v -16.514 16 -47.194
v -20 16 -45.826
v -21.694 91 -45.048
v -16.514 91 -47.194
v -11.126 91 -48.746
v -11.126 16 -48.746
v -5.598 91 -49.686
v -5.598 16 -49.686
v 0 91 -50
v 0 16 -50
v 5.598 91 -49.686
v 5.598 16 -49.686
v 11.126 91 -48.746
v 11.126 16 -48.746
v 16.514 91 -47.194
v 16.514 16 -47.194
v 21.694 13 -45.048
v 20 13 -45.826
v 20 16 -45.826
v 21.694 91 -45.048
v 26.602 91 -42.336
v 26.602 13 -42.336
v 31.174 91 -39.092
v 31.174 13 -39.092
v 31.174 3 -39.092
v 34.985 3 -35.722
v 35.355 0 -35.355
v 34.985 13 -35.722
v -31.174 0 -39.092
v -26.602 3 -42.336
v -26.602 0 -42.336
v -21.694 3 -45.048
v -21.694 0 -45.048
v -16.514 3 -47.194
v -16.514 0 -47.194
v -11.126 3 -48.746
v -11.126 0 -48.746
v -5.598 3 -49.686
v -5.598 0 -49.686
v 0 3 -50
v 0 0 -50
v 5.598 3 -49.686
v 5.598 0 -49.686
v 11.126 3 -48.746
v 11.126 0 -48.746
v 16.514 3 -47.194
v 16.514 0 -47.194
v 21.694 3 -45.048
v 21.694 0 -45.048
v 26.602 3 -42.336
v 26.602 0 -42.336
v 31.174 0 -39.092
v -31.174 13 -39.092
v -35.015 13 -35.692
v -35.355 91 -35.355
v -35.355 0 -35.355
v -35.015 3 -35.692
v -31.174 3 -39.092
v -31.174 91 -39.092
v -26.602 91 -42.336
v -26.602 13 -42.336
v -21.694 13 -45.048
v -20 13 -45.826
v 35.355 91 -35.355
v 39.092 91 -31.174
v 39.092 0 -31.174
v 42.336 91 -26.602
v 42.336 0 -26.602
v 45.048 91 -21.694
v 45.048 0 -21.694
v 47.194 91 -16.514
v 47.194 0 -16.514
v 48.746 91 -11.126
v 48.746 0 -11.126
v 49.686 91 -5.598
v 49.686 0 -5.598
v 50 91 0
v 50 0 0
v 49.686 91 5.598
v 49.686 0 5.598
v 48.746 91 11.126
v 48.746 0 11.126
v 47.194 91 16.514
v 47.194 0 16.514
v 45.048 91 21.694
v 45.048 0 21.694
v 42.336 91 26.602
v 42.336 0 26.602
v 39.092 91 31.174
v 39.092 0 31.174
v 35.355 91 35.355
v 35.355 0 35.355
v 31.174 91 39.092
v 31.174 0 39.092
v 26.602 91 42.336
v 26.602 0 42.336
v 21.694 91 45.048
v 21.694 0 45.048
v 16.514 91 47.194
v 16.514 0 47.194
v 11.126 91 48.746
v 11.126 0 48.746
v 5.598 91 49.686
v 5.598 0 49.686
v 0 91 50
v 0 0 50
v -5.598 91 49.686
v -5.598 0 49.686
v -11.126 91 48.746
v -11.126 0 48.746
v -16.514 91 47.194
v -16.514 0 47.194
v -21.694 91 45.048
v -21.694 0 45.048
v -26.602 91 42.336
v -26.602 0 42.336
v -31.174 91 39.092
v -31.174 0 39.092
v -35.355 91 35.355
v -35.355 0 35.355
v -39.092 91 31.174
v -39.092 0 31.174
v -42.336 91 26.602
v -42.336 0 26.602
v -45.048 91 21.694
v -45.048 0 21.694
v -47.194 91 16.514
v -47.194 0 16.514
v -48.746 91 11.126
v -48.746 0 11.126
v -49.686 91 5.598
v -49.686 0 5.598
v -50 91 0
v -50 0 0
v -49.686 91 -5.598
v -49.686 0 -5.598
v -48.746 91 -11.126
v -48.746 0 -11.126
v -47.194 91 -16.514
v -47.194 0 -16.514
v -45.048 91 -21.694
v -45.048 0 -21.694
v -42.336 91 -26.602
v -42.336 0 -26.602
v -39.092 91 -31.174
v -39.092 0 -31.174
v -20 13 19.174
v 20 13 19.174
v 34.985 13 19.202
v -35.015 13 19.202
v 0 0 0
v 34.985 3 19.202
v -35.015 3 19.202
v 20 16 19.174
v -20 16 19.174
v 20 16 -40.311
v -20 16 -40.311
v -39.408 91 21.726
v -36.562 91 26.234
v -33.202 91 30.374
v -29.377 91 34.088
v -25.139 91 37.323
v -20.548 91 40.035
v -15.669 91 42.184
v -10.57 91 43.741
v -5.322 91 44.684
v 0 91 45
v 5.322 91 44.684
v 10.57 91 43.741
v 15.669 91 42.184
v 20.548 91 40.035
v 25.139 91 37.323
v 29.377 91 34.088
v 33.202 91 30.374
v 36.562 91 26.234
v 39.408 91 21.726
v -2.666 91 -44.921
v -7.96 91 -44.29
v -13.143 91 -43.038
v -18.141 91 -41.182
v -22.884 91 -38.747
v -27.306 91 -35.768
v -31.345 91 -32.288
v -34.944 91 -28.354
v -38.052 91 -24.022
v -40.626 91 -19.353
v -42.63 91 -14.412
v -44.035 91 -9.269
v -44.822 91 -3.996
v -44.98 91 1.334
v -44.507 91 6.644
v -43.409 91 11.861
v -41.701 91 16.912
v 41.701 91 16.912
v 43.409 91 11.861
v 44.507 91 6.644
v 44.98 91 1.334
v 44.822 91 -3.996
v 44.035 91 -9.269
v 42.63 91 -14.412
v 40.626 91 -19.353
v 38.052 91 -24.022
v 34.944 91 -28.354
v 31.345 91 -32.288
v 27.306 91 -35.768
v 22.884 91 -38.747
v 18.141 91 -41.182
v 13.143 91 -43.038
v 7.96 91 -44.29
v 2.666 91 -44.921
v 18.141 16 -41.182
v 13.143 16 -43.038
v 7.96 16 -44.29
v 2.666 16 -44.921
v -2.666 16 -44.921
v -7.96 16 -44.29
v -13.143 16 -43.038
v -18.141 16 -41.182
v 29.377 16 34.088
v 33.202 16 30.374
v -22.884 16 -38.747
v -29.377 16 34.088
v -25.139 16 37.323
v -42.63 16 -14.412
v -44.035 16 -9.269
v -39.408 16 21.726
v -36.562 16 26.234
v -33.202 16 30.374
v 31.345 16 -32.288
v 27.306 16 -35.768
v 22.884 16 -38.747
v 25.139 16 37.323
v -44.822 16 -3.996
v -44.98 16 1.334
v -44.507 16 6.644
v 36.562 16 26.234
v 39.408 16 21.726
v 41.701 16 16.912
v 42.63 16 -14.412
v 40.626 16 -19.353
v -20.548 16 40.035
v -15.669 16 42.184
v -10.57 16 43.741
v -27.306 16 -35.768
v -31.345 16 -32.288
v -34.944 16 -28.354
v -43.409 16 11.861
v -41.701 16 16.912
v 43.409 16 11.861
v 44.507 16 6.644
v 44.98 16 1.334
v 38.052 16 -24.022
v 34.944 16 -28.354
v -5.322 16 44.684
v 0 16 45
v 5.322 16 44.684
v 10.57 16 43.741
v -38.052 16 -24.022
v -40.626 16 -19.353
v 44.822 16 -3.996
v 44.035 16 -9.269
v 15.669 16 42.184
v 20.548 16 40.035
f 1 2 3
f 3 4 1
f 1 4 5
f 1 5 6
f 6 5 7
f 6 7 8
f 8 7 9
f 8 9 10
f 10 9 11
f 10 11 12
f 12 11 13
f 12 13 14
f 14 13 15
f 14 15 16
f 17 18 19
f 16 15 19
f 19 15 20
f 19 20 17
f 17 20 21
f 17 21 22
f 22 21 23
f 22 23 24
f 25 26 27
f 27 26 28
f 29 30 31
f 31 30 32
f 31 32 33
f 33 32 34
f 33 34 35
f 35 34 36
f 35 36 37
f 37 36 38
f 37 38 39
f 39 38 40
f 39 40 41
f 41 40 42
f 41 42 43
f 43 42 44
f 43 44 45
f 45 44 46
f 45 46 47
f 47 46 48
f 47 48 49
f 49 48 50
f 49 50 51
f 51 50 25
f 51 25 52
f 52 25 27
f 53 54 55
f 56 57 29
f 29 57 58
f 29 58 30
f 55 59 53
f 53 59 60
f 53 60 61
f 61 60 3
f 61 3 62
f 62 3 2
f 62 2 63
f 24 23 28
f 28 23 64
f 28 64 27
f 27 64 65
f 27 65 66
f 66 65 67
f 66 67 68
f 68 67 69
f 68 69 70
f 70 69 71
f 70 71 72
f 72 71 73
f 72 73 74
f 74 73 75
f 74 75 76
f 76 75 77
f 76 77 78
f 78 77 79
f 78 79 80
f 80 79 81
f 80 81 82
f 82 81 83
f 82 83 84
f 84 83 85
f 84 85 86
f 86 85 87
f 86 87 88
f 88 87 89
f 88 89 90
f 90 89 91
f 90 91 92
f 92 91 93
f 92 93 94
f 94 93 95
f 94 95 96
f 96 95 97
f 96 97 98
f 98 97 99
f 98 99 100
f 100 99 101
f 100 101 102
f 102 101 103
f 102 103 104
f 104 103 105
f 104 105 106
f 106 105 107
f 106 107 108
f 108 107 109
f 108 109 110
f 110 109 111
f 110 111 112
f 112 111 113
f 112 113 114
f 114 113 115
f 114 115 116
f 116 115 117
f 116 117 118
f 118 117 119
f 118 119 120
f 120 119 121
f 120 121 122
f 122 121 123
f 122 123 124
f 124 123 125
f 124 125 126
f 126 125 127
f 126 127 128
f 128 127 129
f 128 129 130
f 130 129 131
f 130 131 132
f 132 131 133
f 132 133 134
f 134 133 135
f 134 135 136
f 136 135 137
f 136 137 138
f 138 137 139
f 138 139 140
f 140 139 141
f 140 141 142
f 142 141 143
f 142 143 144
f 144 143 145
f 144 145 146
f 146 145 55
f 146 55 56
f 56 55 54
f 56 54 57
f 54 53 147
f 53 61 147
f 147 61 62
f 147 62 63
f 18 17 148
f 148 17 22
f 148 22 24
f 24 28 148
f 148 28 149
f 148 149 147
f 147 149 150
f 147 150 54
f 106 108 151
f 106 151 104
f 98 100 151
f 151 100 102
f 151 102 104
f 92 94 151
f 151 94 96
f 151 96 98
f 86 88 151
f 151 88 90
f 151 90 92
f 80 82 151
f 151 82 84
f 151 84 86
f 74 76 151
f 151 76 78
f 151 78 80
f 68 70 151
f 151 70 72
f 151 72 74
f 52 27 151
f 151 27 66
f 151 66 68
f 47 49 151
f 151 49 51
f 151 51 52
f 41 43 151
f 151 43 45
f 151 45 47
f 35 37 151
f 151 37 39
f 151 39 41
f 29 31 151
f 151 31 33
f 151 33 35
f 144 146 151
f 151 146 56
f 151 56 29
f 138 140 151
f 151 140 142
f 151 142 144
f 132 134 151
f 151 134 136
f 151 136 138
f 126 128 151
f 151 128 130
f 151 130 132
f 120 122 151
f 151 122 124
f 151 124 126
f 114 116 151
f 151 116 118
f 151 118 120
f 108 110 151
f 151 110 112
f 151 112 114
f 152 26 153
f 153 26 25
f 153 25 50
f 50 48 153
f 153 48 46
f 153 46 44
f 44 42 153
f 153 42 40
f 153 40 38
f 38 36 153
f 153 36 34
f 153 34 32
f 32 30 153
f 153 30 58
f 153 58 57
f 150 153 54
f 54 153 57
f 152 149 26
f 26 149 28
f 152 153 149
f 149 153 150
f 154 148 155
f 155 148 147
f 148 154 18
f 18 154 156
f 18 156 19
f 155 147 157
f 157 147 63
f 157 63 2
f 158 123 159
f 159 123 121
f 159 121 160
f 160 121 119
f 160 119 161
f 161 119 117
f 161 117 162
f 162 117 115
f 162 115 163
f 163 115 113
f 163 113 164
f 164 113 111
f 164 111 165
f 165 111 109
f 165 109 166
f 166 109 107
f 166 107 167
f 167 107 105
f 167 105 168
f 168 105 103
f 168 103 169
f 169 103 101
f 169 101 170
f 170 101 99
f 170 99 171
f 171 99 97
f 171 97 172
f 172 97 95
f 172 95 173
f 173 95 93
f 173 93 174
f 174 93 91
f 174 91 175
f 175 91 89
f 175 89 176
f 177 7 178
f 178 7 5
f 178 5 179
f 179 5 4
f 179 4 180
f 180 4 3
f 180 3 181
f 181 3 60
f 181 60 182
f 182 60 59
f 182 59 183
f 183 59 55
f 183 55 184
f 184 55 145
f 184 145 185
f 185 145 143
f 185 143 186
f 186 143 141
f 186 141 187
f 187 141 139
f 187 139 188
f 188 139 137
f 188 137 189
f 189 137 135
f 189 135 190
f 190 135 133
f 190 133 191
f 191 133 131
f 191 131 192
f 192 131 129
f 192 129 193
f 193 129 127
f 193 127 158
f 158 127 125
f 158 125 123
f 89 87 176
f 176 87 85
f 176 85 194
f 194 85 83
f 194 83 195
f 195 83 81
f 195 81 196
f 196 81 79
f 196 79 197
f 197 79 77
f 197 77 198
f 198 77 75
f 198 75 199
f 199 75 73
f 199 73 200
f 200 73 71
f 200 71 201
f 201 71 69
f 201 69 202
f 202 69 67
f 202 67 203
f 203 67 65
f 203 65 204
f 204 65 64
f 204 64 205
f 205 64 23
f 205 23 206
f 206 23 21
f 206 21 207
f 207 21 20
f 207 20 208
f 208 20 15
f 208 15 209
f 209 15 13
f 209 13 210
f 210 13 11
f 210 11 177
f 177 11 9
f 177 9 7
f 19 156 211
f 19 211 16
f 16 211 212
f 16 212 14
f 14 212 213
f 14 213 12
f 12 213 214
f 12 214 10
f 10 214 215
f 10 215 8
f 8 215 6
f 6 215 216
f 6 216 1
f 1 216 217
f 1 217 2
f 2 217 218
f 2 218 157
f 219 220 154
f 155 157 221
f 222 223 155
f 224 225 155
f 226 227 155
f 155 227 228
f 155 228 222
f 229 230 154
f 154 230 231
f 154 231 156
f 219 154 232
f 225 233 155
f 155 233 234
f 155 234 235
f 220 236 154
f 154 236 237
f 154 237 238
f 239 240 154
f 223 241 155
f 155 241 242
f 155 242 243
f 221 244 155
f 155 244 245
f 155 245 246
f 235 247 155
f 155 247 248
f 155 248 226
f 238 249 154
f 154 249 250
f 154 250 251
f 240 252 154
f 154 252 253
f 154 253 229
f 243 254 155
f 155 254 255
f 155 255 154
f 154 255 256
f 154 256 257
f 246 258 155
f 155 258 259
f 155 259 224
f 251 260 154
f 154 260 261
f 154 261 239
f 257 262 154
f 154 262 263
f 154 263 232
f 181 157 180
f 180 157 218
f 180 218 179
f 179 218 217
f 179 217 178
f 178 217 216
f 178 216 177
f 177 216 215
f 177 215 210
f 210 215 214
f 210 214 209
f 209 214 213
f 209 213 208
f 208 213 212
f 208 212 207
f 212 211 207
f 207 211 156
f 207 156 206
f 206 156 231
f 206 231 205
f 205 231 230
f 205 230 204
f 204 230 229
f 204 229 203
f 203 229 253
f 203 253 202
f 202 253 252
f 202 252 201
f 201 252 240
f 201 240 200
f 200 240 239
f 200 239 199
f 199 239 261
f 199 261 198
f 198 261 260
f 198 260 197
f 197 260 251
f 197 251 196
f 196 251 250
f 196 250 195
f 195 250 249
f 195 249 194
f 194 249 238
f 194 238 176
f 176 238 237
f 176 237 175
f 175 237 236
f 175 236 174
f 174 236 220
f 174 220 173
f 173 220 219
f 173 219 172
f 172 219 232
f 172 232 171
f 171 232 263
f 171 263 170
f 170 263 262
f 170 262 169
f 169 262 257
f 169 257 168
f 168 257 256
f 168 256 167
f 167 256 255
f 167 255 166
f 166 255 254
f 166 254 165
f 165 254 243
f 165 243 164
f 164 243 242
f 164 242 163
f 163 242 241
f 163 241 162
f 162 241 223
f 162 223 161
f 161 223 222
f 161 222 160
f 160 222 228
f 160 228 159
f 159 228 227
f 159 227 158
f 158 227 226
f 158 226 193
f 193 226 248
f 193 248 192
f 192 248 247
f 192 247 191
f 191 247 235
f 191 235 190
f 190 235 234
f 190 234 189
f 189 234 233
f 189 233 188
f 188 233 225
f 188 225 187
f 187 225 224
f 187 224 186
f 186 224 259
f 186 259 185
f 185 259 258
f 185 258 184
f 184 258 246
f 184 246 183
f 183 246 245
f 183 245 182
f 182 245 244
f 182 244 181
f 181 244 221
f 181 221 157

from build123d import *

# Parameters (mm, degrees)
SKETCH1_R           = 50
BOSS_EXTRUDE1_DEPTH = 13
SKETCH2_W           = 70
SKETCH2_H           = 55
CUT_EXTRUDE1_DEPTH  = 10
CUT_EXTRUDE3_START  = -10
CUT_EXTRUDE3_DEPTH  = 10
SKETCH6_R           = 50
BOSS_EXTRUDE5_DEPTH = 3
SKETCH11_W          = 40
SKETCH11_H          = 65
CUT_EXTRUDE12_DEPTH = 10
CUT_EXTRUDE13_START = -10
CUT_EXTRUDE13_DEPTH = 10
SKETCH13_R          = 50
BOSS_EXTRUDE6_DEPTH = 75
SKETCH14_R          = 45
CUT_EXTRUDE14_DEPTH = 75


with BuildPart() as part:
    # Sketch1 → Boss-Extrude1 (new body)
    with BuildSketch(Plane(origin=(0, 0, 0), x_dir=(1, 0, 0), z_dir=(0, 1, 0))):
        with Locations(Location((0, 0, 0), (0, 0, 90))):
            Circle(SKETCH1_R)
    extrude(amount=BOSS_EXTRUDE1_DEPTH)

    # Sketch2 → Cut-Extrude1 (cut)
    with BuildSketch(Plane(origin=(0, 13, 0), x_dir=(1, 0, 0), z_dir=(0, 1, 0))):
        with Locations((-0.015145616, 8.297810168)):
            Rectangle(SKETCH2_W, SKETCH2_H)
    extrude(amount=-CUT_EXTRUDE1_DEPTH, mode=Mode.SUBTRACT)

    # Sketch3 → Cut-Extrude3 (cut)
    with BuildSketch(Plane(origin=(0, 13, 0), x_dir=(1, 0, 0), z_dir=(0, 1, 0)).offset(CUT_EXTRUDE3_START)):
        with BuildLine():
            Line((-35.015145616, 35.692290169), (34.984854384, 35.72198152))
            ThreePointArc((34.984854384, 35.72198152), (-0.021208106, 49.999995502), (-35.015145616, 35.692290169))
        make_face()
    extrude(amount=CUT_EXTRUDE3_DEPTH, mode=Mode.SUBTRACT)

    # Sketch6 → Boss-Extrude5 (add)
    with BuildSketch(Plane(origin=(0, 13, 0), x_dir=(1, 0, 0), z_dir=(0, 1, 0))):
        with Locations(Location((0, 0, 0), (0, 0, 270))):
            Circle(SKETCH6_R)
    extrude(amount=BOSS_EXTRUDE5_DEPTH)

    # Sketch11 → Cut-Extrude12 (cut)
    with BuildSketch(Plane(origin=(0, 16, 0), x_dir=(1, 0, 0), z_dir=(0, 1, 0))):
        with Locations((0, 13.32575695)):
            Rectangle(SKETCH11_W, SKETCH11_H)
    extrude(amount=-CUT_EXTRUDE12_DEPTH, mode=Mode.SUBTRACT)

    # Sketch12 → Cut-Extrude13 (cut)
    with BuildSketch(Plane(origin=(0, 16, 0), x_dir=(1, 0, 0), z_dir=(0, 1, 0)).offset(CUT_EXTRUDE13_START)):
        with BuildLine():
            Line((-20, 45.82575695), (20, 45.82575695))
            ThreePointArc((20, 45.82575695), (0, 50), (-20, 45.82575695))
        make_face()
    extrude(amount=CUT_EXTRUDE13_DEPTH, mode=Mode.SUBTRACT)

    # Sketch13 → Boss-Extrude6 (add)
    with BuildSketch(Plane(origin=(0, 16, 0), x_dir=(1, 0, 0), z_dir=(0, 1, 0))):
        with Locations(Location((0, 0, 0), (0, 0, 270))):
            Circle(SKETCH13_R)
    extrude(amount=BOSS_EXTRUDE6_DEPTH)

    # Sketch14 → Cut-Extrude14 (cut)
    with BuildSketch(Plane(origin=(0, 91, 0), x_dir=(1, 0, 0), z_dir=(0, 1, 0))):
        with Locations(Location((0, 0, 0), (0, 0, 270))):
            Circle(SKETCH14_R)
    extrude(amount=-CUT_EXTRUDE14_DEPTH, mode=Mode.SUBTRACT)


solid = part.part
